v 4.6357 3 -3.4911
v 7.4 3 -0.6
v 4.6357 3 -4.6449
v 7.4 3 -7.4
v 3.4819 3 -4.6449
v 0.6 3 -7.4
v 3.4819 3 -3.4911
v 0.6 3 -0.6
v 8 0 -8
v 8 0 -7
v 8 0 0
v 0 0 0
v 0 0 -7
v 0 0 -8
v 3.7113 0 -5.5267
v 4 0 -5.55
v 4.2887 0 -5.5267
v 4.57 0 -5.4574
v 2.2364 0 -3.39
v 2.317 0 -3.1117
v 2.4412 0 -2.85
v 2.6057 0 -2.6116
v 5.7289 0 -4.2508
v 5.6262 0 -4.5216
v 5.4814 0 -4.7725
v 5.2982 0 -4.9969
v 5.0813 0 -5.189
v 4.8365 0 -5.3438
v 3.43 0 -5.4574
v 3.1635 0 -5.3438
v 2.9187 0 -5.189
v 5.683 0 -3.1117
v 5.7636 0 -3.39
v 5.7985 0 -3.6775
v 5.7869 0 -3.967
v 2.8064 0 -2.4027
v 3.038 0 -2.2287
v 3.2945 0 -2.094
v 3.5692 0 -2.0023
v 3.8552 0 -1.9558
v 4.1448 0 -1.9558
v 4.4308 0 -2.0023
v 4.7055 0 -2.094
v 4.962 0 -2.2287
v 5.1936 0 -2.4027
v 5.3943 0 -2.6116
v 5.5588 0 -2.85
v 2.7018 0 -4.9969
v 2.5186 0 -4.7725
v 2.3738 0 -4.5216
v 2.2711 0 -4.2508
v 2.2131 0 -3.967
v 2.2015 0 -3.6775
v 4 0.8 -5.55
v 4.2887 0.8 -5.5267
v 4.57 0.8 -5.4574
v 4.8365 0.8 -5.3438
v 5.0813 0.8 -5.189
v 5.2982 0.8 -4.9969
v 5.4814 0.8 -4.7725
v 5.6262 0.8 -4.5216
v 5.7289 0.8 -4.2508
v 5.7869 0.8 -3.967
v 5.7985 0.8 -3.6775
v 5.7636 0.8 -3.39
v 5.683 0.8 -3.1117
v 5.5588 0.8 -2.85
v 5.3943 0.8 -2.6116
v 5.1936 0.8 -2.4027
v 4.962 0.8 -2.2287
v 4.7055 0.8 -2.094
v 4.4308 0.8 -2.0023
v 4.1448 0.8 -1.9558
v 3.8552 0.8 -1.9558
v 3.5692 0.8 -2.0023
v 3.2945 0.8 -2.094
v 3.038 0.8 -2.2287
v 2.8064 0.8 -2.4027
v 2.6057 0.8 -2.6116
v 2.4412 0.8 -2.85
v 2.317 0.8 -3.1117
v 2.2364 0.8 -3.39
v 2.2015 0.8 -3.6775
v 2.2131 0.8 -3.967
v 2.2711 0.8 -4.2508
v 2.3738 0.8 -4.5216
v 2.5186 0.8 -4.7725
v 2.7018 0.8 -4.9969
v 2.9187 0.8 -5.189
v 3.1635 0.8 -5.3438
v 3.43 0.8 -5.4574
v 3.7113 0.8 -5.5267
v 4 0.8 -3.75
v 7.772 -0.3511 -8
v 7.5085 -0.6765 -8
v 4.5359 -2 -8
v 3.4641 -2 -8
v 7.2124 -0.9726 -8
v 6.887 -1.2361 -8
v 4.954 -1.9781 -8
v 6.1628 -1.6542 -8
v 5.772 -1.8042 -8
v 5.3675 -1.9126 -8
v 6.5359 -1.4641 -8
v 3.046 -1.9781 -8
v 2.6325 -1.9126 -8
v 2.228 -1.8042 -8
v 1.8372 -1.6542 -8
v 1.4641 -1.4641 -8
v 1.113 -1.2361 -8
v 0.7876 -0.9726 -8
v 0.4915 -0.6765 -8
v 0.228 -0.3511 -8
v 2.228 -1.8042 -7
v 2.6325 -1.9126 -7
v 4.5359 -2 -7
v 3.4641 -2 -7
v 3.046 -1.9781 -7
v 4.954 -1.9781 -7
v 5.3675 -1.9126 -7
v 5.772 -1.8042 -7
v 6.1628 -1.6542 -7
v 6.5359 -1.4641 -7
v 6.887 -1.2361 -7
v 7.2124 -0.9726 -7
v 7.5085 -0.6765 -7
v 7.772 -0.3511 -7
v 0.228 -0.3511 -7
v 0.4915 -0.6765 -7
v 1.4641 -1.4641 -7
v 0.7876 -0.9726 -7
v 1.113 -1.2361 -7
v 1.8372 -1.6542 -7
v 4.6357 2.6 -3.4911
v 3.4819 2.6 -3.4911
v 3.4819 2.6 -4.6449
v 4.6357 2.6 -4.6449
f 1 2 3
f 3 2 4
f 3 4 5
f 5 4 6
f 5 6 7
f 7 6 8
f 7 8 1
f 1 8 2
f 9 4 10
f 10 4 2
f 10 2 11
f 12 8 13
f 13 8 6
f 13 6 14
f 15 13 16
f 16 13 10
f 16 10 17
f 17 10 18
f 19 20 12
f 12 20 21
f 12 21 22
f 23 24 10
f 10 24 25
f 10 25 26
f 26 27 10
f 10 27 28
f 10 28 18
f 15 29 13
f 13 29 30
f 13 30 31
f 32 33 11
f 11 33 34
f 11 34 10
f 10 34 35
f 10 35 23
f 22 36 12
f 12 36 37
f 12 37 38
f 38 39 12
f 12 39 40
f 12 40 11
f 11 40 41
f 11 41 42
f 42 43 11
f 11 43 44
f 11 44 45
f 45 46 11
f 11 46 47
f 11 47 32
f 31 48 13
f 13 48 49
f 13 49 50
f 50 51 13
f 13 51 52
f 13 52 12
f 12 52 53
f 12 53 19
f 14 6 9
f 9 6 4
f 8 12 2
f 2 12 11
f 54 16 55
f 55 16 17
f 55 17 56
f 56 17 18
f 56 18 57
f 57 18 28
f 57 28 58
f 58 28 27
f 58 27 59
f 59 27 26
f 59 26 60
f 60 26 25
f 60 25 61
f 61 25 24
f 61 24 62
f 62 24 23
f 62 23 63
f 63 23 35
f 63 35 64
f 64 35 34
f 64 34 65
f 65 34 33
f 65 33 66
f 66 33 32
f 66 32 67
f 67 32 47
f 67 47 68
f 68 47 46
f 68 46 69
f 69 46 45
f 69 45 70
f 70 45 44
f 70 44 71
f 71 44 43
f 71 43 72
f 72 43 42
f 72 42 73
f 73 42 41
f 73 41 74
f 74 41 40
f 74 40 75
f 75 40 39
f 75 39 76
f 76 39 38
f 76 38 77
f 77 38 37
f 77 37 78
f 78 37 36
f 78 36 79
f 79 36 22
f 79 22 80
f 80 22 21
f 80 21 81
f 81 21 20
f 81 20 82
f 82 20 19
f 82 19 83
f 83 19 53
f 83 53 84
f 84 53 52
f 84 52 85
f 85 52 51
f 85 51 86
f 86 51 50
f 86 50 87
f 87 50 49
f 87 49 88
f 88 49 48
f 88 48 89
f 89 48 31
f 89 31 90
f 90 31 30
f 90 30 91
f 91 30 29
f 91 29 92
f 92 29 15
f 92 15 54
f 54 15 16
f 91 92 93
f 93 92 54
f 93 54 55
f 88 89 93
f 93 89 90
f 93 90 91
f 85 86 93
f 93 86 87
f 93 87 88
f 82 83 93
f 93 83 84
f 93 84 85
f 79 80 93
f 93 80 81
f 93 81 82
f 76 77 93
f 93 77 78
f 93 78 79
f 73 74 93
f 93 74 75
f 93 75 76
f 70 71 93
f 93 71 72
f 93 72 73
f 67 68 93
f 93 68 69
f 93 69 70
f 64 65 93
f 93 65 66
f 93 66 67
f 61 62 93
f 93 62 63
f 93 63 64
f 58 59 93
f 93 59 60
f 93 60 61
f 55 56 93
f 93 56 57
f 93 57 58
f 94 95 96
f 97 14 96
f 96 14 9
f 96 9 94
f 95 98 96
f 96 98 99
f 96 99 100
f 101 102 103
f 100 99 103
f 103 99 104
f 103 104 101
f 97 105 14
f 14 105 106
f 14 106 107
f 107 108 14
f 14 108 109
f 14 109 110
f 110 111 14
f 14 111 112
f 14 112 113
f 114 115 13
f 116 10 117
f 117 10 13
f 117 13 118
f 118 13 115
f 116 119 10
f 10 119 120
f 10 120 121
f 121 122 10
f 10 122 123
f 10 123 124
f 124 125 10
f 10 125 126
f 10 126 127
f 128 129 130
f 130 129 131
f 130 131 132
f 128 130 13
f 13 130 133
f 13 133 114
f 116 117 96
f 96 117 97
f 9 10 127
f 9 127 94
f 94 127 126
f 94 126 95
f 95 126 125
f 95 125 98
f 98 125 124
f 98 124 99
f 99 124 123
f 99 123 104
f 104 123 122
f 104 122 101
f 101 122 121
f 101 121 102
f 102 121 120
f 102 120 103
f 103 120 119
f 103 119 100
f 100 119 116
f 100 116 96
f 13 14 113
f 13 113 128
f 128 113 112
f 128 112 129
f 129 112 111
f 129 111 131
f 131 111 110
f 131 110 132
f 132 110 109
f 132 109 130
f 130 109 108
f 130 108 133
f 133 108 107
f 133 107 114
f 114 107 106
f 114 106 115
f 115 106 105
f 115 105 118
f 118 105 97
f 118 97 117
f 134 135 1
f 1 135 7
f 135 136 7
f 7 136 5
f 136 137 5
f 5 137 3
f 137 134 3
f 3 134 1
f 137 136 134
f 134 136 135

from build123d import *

# Parameters (mm, degrees)
SKETCH1_W               = 8
SKETCH1_H               = 8
BOSS_EXTRUDE1_DEPTH     = 3
CUT_EXTRUDE1_DEPTH      = 12.704699911
CUT_EXTRUDE1_DEPTH_BACK = 12.704699911
CUT_EXTRUDE2_DEPTH      = 11
SKETCH4_R               = 1.8
CUT_EXTRUDE3_DEPTH      = 0.8
SKETCH5_W               = 8
SKETCH5_H               = 1
BOSS_EXTRUDE2_DEPTH     = 2
FILLET1_R               = 4
SKETCH6_W               = 1.153846154
SKETCH6_H               = 1.153846154
CUT_EXTRUDE4_DEPTH      = 0.4


with BuildPart() as part:
    # Sketch1 → Boss-Extrude1 (new body)
    with BuildSketch(Plane(origin=(0, 0, 0), x_dir=(1, 0, 0), z_dir=(0, 1, 0))):
        with Locations((4, 4)):
            Rectangle(SKETCH1_W, SKETCH1_H)
    extrude(amount=BOSS_EXTRUDE1_DEPTH)

    # Sketch2 → Cut-Extrude1 (cut, two sides: drawn at the far end of the back side and taken through both)
    with BuildSketch(Plane.XY.offset(-CUT_EXTRUDE1_DEPTH_BACK)):
        Polygon((0, 0), (0.6, 3), (0, 3), align=None)
        Polygon((8, 0), (7.4, 3), (8, 3), align=None)
    extrude(amount=CUT_EXTRUDE1_DEPTH + CUT_EXTRUDE1_DEPTH_BACK, mode=Mode.SUBTRACT)

    # Sketch3 → Cut-Extrude2 (cut)
    with BuildSketch(Plane(origin=(0, 0, 0), x_dir=(0, 0, -1), z_dir=(1, 0, 0))):
        Polygon((0, 0), (0.6, 3), (0, 3), align=None)
        Polygon((8, 3), (7.4, 3), (8, 0), align=None)
    extrude(amount=CUT_EXTRUDE2_DEPTH, mode=Mode.SUBTRACT)

    # Sketch4 → Cut-Extrude3 (cut)
    with BuildSketch(Plane.XZ):
        with Locations(Location((4, -3.75, 0), (0, 0, 270))):
            Circle(SKETCH4_R)
    extrude(amount=-CUT_EXTRUDE3_DEPTH, mode=Mode.SUBTRACT)

    # Sketch5 → Boss-Extrude2 (add)
    with BuildSketch(Plane.XZ):
        with Locations((4, -7.5)):
            Rectangle(SKETCH5_W, SKETCH5_H)
    extrude(amount=BOSS_EXTRUDE2_DEPTH)

    # Fillet1
    # the kernel refuses this fillet: 4 mm, written as the material it takes off along each edge
    with BuildSketch(Plane(origin=(8, -2, -16.660254038), x_dir=(0, 1, 0), z_dir=(0, 0, 1)), Plane(origin=(0, -2, 1.660254038), x_dir=(0, 1, 0), z_dir=(0, 0, -1))) as fillet1_piece_1:
        with BuildLine():
            CenterArc((4, 3.464101615), FILLET1_R, 180, 60)
            Line((0, 3.464101615), (-0.08, 3.464101615))
            Line((-0.08, 3.464101615), (-0.08, 0))
            Line((-0.08, 0), (0, -0.08))
            ThreePointArc((0, -0.08), (1, -0.08), (1.96, -0.069282032))
            Line((1.96, -0.069282032), (2, 0))
        make_face()
    extrude(amount=18.320508076, mode=Mode.SUBTRACT)

    # Sketch6 → Cut-Extrude4 (cut)
    with BuildSketch(Plane(origin=(0, 3, 0), x_dir=(1, 0, 0), z_dir=(0, 1, 0))):
        with Locations((4.058809338, 4.067977948)):
            Rectangle(SKETCH6_W, SKETCH6_H)
    extrude(amount=-CUT_EXTRUDE4_DEPTH, mode=Mode.SUBTRACT)


solid = part.part
